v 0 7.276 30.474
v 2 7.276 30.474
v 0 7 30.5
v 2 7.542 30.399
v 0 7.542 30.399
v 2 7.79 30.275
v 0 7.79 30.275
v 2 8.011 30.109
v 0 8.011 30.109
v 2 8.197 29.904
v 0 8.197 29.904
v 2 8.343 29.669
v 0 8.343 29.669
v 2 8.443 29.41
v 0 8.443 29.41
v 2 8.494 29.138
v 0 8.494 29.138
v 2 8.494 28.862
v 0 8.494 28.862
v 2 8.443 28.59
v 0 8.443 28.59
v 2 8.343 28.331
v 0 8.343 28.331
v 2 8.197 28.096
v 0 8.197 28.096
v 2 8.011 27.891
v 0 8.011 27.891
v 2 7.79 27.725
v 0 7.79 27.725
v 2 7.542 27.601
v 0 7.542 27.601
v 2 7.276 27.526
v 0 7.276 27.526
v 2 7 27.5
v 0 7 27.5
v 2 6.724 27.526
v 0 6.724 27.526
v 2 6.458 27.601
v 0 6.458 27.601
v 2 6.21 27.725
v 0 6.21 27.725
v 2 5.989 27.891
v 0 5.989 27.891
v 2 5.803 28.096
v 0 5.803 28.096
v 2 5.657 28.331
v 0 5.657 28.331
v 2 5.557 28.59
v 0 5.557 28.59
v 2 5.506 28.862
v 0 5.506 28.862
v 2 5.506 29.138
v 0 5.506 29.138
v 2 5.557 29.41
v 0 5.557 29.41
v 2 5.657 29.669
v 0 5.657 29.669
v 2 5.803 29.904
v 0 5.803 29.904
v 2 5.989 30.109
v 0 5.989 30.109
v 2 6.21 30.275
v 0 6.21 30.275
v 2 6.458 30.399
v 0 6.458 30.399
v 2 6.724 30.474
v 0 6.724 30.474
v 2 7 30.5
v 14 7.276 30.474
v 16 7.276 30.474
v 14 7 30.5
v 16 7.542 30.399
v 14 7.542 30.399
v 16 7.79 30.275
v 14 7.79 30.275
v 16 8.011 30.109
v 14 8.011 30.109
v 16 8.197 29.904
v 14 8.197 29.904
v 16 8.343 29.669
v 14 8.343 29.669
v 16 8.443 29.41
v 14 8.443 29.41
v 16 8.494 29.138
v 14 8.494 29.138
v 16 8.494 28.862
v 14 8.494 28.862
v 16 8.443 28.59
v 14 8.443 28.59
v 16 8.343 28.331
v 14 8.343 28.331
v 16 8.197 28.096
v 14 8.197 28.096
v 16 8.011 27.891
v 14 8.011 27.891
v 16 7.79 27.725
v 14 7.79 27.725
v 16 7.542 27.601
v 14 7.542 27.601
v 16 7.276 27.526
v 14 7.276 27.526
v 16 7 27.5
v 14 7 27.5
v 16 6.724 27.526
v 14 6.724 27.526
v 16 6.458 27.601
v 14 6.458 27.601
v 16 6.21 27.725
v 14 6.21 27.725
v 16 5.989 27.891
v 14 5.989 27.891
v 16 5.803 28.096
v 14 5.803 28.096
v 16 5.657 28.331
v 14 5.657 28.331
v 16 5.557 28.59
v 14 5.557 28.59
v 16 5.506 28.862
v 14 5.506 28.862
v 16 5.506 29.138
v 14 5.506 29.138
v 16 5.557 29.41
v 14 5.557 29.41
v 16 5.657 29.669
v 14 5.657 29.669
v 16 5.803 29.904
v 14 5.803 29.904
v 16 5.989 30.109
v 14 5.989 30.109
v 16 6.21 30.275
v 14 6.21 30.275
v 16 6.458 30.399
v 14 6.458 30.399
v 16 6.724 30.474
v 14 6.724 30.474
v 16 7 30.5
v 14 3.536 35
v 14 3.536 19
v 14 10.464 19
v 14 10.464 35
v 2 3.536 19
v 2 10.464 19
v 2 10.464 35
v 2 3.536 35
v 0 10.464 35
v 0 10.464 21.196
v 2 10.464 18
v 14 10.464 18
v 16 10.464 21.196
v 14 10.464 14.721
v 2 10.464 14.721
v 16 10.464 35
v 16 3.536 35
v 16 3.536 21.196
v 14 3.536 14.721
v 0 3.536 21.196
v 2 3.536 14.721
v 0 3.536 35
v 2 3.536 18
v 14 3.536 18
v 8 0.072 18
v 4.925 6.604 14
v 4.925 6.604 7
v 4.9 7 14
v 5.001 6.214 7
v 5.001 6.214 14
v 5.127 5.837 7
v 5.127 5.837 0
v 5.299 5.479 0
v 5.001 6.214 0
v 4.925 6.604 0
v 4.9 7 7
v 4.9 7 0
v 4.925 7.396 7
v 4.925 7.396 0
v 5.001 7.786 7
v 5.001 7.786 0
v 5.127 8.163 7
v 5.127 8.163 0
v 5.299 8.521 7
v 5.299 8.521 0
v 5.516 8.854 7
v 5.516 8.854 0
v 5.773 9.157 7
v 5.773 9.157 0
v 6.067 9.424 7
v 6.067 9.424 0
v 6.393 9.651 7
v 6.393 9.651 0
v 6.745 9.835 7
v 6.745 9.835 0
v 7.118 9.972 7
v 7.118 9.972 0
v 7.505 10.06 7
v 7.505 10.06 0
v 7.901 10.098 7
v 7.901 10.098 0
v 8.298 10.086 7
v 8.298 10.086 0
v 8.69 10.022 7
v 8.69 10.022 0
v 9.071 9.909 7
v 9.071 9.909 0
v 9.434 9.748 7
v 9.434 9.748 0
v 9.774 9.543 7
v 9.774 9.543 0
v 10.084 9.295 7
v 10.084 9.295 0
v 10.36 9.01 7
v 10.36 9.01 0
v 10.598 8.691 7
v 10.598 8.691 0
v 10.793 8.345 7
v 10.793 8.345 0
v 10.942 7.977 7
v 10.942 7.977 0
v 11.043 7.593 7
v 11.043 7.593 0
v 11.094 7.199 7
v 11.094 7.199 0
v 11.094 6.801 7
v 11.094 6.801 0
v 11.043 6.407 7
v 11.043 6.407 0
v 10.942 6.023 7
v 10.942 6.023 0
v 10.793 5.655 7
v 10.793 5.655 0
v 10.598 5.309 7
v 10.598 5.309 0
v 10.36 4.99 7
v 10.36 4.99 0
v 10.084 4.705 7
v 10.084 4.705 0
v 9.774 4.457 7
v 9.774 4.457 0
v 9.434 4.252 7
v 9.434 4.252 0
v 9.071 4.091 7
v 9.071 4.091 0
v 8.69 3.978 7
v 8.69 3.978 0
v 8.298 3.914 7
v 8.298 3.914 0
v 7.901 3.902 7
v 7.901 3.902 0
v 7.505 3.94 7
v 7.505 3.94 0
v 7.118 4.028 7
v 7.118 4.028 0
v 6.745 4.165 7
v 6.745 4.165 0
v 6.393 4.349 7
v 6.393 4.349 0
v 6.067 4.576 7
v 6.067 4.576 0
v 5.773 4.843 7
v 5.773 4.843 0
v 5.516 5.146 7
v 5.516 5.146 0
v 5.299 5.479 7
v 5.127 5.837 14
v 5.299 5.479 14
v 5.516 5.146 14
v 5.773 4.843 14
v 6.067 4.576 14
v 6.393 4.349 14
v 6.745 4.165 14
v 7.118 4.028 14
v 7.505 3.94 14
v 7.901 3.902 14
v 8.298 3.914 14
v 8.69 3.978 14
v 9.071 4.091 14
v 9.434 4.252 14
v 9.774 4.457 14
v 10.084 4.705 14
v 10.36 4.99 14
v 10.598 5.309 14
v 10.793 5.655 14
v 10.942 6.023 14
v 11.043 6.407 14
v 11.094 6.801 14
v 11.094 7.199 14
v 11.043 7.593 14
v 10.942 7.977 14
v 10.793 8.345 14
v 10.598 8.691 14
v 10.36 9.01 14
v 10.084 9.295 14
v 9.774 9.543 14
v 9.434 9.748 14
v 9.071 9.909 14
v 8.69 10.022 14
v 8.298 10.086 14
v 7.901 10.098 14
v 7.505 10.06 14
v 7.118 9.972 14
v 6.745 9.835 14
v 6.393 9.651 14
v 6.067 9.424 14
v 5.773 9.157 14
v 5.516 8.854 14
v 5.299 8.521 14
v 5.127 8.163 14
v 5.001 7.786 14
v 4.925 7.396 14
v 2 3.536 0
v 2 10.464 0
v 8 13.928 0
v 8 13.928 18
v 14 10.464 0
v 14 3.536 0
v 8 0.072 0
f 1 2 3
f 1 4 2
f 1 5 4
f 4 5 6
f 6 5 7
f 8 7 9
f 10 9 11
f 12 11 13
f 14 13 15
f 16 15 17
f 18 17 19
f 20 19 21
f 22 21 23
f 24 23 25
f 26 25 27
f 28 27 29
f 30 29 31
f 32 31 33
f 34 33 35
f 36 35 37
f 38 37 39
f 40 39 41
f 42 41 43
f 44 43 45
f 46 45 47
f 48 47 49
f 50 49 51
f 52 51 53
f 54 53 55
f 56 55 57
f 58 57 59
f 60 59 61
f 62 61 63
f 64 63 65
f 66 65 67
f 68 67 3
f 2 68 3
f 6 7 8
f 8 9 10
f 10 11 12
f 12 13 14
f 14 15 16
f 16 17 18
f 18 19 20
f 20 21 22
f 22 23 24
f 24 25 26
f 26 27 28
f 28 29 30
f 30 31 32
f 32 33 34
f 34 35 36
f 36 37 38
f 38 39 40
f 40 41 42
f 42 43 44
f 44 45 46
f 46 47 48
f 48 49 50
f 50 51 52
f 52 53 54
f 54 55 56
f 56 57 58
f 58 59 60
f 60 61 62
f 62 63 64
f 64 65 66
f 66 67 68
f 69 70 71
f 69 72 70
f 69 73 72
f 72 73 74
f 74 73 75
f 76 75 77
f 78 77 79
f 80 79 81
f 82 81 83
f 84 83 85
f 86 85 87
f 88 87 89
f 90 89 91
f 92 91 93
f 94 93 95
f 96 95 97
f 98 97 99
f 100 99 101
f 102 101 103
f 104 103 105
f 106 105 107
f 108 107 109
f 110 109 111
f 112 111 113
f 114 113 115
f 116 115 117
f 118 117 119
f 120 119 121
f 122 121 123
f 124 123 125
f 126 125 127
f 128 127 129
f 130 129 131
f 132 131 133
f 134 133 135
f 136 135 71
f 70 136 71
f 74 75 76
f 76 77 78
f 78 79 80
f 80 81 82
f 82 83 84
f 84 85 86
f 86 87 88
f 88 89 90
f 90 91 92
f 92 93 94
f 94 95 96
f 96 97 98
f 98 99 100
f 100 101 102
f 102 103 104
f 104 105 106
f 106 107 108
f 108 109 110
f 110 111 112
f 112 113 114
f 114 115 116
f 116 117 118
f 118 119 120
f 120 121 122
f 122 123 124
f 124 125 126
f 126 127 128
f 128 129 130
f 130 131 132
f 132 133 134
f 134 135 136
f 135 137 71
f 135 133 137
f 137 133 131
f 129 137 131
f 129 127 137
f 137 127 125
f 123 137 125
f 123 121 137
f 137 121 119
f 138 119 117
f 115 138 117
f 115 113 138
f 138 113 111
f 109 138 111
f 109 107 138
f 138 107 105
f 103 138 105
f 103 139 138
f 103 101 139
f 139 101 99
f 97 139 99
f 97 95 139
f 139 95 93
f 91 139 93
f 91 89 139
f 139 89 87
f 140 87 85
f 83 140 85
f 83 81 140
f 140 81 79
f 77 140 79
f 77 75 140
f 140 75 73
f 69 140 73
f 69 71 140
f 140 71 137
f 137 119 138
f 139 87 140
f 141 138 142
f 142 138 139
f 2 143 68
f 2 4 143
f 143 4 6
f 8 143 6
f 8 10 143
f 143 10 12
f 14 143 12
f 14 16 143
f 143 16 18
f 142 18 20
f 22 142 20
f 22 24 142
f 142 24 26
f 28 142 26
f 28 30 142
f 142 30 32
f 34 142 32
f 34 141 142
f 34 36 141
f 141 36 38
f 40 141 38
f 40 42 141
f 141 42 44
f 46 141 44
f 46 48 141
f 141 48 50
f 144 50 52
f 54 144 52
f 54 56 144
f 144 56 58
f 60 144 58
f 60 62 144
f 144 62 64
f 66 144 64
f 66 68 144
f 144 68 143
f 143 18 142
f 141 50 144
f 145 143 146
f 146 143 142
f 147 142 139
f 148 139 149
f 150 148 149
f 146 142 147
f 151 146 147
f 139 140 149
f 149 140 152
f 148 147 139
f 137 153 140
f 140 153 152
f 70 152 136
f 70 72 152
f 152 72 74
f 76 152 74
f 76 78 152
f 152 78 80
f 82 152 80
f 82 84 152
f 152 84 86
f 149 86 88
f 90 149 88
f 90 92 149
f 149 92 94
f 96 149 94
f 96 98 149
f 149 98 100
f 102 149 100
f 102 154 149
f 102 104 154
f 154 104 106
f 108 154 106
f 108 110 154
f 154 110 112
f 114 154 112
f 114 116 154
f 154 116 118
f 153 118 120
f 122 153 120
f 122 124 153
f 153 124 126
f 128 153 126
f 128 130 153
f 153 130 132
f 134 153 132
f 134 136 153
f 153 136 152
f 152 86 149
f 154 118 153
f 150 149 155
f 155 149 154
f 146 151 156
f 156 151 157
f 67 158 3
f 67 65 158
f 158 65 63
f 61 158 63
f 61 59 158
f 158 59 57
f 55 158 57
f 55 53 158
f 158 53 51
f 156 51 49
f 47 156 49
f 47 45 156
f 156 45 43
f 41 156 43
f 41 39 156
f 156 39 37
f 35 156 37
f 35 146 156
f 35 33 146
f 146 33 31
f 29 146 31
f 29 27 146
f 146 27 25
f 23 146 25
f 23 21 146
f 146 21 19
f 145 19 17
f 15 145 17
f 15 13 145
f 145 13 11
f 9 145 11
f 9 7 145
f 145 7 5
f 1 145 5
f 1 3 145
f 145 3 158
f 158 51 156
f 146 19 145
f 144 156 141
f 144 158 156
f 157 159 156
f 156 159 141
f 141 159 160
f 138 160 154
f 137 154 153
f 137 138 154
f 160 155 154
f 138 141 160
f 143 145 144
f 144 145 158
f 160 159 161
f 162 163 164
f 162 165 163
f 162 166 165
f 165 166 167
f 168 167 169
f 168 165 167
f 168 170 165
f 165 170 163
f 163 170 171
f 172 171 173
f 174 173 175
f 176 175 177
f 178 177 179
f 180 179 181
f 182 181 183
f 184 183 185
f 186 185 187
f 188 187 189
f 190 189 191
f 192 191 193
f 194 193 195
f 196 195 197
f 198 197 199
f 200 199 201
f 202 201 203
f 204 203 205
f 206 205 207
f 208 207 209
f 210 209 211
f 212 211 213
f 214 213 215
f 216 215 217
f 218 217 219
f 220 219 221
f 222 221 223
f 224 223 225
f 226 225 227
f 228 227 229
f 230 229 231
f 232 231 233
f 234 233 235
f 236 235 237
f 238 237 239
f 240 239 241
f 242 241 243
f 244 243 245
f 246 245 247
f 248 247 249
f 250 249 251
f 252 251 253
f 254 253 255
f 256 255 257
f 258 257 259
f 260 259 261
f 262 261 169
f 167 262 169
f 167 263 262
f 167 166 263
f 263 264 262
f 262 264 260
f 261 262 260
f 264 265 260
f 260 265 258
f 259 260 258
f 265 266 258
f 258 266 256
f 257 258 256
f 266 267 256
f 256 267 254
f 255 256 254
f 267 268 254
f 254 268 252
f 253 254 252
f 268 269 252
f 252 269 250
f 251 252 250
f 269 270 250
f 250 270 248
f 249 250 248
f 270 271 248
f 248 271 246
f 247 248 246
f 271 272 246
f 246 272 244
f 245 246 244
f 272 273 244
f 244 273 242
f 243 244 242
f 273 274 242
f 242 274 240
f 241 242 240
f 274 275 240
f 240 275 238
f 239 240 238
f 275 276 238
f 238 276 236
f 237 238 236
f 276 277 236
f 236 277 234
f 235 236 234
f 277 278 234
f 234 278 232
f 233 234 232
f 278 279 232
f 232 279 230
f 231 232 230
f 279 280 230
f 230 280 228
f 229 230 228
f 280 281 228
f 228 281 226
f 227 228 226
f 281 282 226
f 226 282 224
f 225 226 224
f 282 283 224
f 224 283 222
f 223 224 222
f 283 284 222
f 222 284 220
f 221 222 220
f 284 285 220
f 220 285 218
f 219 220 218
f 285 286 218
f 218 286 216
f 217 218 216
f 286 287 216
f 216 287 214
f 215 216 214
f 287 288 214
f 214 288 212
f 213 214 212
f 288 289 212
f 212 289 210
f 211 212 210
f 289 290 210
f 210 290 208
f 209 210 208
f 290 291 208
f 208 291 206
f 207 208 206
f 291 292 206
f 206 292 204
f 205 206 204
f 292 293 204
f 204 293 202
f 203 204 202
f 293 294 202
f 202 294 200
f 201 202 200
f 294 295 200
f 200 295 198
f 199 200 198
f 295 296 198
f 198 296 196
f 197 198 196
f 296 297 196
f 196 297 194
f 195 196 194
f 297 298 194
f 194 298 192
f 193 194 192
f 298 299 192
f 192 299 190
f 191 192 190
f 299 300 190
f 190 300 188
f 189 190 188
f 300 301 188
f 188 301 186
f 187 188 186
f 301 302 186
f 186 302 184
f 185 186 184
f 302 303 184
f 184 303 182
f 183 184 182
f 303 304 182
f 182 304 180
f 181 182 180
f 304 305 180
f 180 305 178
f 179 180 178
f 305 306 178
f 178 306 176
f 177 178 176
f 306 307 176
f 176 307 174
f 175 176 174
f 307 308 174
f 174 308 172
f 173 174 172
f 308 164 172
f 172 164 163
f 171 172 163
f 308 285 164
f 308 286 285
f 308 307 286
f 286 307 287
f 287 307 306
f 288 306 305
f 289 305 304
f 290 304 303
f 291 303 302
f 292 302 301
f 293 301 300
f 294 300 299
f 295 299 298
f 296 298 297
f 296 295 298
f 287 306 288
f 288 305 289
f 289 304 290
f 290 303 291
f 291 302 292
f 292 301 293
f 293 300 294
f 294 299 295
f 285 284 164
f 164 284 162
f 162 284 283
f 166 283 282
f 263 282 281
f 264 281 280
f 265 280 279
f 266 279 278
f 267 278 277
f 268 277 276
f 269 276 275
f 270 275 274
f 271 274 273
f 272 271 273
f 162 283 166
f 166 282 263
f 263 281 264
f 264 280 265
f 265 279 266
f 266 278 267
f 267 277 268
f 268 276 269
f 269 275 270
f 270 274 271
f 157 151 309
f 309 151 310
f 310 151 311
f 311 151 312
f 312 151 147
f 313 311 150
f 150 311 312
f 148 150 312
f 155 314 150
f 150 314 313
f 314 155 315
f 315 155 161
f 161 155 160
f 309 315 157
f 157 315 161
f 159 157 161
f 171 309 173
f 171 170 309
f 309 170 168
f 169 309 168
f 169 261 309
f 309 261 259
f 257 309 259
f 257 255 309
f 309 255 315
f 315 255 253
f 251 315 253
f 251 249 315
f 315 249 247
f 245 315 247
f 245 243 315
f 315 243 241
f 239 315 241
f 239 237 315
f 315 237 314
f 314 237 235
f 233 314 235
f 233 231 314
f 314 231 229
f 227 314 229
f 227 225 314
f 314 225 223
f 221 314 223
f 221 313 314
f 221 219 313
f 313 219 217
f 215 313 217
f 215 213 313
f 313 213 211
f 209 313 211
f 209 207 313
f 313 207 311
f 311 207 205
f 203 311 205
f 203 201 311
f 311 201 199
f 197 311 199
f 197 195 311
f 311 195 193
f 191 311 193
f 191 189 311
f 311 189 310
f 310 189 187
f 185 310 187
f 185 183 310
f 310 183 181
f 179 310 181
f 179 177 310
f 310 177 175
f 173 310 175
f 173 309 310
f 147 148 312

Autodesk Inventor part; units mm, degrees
ref_plane "YZ Plane" through (0, 0, 0) normal (1, 0, 0) x (0, 1, 0)
ref_plane "XZ Plane" through (0, 0, 0) normal (0, 1, 0) x (-1, 0, 0)
ref_plane "XY Plane" through (0, 0, 0) normal (0, 0, 1) x (1, 0, 0)
sketch "Sketch1" plane through (0, 0, 0) normal (0, 0, 1) x (1, 0, 0)
  line L0 (8, 0.0718) -> (2, 3.5359)
  line L1 (2, 3.5359) -> (2, 10.4641)
  line L2 (2, 10.4641) -> (8, 13.9282)
  line L3 (8, 13.9282) -> (14, 10.4641)
  line L4 (14, 10.4641) -> (14, 3.5359)
  line L5 (14, 3.5359) -> (8, 0.0718)
  point P0 (0, 0)
  point P1 (8, 7)
  dimension "d1" = 12
extrude "Extrusion1" add sketch "Sketch1" along normal blind 18
sketch "Sketch2" plane through (0, 0, 0) normal (0, 0, -1) x (-1, 0, 0)
  circle A0 centre (-8, 7) radius 3.1
  point P0 (0, 0)
  dimension "d5" = 6.2
extrude "Extrusion2" cut sketch "Sketch2" against normal blind 14
sketch "Sketch3" plane through (0, 0, 18) normal (0, 0, 1) x (1, 0, 0)
  line L0 (14, 3.5359) -> (8, 0.0718) projected
  line L1 (14, 3.5359) -> (2, 3.5359)
  line L2 (2, 3.5359) -> (2, 10.4641)
  line L3 (2, 10.4641) -> (14, 10.4641)
  line L4 (14, 10.4641) -> (14, 3.5359)
  point P0 (0, 0)
  dimension "d12" = 6.9282
extrude "Extrusion3" add sketch "Sketch3" along normal blind 17
sketch "Sketch4" plane through (2, 10.4641, 18) normal (0, 1, 0) x (1, 0, 0)
  line L0 (12, 0) -> (12, -17) projected
  line L1 (12, -17) -> (14, -17)
  line L2 (0, 0) -> (0, -17) projected
  line L3 (12, 0) -> (12, -17)
  line L4 (0, -17) -> (-2, -17)
  line L5 (0, 0) -> (0, -17)
  line L6 (14, -17) -> (14, -3.1957)
  line L7 (-2, -3.1957) -> (0, 3.2792)
  line L8 (14, -3.1957) -> (12, 3.2792)
  line L9 (12, 18) -> (12, 0) projected
  line L10 (0, 0) -> (0, 3.2792)
  line L11 (12, 0) -> (12, 3)
  line L12 (-2, -17) -> (-2, -3.1957)
  point P0 (-2, 18)
  dimension "d10" = 2
  dimension "d11" = 2
extrude "Extrusion4" add sketch "Sketch4" against normal blind 6.9282
sketch "Sketch5" plane through (2, 10.4641, 18) normal (0, 1, 0) x (1, 0, 0)
  line L0 (14, -17) -> (14, -17) projected
  line L1 (0, -17) -> (12, -17)
  line L2 (12, -17) -> (12, -1)
  line L3 (12, -1) -> (0, -1)
  line L4 (0, -1) -> (0, -17)
  point P0 (-2, 18)
  point P1 (-2, -17)
extrude "Extrusion5" cut sketch "Sketch5" against normal through all
sketch "Sketch6" plane through (0, 10.4641, 21.1957) normal (-1, 0, 0) x (0, 0, 1)
  line L0 (13.8043, 0) -> (13.8043, -6.9282) projected
  circle A0 centre (7.8043, -3.4641) radius 1.5
  point P0 (-21.1957, -10.4641)
  dimension "d18" = 3
extrude "Extrusion6" cut sketch "Sketch6" against normal through all
properties part number "supportrod"
